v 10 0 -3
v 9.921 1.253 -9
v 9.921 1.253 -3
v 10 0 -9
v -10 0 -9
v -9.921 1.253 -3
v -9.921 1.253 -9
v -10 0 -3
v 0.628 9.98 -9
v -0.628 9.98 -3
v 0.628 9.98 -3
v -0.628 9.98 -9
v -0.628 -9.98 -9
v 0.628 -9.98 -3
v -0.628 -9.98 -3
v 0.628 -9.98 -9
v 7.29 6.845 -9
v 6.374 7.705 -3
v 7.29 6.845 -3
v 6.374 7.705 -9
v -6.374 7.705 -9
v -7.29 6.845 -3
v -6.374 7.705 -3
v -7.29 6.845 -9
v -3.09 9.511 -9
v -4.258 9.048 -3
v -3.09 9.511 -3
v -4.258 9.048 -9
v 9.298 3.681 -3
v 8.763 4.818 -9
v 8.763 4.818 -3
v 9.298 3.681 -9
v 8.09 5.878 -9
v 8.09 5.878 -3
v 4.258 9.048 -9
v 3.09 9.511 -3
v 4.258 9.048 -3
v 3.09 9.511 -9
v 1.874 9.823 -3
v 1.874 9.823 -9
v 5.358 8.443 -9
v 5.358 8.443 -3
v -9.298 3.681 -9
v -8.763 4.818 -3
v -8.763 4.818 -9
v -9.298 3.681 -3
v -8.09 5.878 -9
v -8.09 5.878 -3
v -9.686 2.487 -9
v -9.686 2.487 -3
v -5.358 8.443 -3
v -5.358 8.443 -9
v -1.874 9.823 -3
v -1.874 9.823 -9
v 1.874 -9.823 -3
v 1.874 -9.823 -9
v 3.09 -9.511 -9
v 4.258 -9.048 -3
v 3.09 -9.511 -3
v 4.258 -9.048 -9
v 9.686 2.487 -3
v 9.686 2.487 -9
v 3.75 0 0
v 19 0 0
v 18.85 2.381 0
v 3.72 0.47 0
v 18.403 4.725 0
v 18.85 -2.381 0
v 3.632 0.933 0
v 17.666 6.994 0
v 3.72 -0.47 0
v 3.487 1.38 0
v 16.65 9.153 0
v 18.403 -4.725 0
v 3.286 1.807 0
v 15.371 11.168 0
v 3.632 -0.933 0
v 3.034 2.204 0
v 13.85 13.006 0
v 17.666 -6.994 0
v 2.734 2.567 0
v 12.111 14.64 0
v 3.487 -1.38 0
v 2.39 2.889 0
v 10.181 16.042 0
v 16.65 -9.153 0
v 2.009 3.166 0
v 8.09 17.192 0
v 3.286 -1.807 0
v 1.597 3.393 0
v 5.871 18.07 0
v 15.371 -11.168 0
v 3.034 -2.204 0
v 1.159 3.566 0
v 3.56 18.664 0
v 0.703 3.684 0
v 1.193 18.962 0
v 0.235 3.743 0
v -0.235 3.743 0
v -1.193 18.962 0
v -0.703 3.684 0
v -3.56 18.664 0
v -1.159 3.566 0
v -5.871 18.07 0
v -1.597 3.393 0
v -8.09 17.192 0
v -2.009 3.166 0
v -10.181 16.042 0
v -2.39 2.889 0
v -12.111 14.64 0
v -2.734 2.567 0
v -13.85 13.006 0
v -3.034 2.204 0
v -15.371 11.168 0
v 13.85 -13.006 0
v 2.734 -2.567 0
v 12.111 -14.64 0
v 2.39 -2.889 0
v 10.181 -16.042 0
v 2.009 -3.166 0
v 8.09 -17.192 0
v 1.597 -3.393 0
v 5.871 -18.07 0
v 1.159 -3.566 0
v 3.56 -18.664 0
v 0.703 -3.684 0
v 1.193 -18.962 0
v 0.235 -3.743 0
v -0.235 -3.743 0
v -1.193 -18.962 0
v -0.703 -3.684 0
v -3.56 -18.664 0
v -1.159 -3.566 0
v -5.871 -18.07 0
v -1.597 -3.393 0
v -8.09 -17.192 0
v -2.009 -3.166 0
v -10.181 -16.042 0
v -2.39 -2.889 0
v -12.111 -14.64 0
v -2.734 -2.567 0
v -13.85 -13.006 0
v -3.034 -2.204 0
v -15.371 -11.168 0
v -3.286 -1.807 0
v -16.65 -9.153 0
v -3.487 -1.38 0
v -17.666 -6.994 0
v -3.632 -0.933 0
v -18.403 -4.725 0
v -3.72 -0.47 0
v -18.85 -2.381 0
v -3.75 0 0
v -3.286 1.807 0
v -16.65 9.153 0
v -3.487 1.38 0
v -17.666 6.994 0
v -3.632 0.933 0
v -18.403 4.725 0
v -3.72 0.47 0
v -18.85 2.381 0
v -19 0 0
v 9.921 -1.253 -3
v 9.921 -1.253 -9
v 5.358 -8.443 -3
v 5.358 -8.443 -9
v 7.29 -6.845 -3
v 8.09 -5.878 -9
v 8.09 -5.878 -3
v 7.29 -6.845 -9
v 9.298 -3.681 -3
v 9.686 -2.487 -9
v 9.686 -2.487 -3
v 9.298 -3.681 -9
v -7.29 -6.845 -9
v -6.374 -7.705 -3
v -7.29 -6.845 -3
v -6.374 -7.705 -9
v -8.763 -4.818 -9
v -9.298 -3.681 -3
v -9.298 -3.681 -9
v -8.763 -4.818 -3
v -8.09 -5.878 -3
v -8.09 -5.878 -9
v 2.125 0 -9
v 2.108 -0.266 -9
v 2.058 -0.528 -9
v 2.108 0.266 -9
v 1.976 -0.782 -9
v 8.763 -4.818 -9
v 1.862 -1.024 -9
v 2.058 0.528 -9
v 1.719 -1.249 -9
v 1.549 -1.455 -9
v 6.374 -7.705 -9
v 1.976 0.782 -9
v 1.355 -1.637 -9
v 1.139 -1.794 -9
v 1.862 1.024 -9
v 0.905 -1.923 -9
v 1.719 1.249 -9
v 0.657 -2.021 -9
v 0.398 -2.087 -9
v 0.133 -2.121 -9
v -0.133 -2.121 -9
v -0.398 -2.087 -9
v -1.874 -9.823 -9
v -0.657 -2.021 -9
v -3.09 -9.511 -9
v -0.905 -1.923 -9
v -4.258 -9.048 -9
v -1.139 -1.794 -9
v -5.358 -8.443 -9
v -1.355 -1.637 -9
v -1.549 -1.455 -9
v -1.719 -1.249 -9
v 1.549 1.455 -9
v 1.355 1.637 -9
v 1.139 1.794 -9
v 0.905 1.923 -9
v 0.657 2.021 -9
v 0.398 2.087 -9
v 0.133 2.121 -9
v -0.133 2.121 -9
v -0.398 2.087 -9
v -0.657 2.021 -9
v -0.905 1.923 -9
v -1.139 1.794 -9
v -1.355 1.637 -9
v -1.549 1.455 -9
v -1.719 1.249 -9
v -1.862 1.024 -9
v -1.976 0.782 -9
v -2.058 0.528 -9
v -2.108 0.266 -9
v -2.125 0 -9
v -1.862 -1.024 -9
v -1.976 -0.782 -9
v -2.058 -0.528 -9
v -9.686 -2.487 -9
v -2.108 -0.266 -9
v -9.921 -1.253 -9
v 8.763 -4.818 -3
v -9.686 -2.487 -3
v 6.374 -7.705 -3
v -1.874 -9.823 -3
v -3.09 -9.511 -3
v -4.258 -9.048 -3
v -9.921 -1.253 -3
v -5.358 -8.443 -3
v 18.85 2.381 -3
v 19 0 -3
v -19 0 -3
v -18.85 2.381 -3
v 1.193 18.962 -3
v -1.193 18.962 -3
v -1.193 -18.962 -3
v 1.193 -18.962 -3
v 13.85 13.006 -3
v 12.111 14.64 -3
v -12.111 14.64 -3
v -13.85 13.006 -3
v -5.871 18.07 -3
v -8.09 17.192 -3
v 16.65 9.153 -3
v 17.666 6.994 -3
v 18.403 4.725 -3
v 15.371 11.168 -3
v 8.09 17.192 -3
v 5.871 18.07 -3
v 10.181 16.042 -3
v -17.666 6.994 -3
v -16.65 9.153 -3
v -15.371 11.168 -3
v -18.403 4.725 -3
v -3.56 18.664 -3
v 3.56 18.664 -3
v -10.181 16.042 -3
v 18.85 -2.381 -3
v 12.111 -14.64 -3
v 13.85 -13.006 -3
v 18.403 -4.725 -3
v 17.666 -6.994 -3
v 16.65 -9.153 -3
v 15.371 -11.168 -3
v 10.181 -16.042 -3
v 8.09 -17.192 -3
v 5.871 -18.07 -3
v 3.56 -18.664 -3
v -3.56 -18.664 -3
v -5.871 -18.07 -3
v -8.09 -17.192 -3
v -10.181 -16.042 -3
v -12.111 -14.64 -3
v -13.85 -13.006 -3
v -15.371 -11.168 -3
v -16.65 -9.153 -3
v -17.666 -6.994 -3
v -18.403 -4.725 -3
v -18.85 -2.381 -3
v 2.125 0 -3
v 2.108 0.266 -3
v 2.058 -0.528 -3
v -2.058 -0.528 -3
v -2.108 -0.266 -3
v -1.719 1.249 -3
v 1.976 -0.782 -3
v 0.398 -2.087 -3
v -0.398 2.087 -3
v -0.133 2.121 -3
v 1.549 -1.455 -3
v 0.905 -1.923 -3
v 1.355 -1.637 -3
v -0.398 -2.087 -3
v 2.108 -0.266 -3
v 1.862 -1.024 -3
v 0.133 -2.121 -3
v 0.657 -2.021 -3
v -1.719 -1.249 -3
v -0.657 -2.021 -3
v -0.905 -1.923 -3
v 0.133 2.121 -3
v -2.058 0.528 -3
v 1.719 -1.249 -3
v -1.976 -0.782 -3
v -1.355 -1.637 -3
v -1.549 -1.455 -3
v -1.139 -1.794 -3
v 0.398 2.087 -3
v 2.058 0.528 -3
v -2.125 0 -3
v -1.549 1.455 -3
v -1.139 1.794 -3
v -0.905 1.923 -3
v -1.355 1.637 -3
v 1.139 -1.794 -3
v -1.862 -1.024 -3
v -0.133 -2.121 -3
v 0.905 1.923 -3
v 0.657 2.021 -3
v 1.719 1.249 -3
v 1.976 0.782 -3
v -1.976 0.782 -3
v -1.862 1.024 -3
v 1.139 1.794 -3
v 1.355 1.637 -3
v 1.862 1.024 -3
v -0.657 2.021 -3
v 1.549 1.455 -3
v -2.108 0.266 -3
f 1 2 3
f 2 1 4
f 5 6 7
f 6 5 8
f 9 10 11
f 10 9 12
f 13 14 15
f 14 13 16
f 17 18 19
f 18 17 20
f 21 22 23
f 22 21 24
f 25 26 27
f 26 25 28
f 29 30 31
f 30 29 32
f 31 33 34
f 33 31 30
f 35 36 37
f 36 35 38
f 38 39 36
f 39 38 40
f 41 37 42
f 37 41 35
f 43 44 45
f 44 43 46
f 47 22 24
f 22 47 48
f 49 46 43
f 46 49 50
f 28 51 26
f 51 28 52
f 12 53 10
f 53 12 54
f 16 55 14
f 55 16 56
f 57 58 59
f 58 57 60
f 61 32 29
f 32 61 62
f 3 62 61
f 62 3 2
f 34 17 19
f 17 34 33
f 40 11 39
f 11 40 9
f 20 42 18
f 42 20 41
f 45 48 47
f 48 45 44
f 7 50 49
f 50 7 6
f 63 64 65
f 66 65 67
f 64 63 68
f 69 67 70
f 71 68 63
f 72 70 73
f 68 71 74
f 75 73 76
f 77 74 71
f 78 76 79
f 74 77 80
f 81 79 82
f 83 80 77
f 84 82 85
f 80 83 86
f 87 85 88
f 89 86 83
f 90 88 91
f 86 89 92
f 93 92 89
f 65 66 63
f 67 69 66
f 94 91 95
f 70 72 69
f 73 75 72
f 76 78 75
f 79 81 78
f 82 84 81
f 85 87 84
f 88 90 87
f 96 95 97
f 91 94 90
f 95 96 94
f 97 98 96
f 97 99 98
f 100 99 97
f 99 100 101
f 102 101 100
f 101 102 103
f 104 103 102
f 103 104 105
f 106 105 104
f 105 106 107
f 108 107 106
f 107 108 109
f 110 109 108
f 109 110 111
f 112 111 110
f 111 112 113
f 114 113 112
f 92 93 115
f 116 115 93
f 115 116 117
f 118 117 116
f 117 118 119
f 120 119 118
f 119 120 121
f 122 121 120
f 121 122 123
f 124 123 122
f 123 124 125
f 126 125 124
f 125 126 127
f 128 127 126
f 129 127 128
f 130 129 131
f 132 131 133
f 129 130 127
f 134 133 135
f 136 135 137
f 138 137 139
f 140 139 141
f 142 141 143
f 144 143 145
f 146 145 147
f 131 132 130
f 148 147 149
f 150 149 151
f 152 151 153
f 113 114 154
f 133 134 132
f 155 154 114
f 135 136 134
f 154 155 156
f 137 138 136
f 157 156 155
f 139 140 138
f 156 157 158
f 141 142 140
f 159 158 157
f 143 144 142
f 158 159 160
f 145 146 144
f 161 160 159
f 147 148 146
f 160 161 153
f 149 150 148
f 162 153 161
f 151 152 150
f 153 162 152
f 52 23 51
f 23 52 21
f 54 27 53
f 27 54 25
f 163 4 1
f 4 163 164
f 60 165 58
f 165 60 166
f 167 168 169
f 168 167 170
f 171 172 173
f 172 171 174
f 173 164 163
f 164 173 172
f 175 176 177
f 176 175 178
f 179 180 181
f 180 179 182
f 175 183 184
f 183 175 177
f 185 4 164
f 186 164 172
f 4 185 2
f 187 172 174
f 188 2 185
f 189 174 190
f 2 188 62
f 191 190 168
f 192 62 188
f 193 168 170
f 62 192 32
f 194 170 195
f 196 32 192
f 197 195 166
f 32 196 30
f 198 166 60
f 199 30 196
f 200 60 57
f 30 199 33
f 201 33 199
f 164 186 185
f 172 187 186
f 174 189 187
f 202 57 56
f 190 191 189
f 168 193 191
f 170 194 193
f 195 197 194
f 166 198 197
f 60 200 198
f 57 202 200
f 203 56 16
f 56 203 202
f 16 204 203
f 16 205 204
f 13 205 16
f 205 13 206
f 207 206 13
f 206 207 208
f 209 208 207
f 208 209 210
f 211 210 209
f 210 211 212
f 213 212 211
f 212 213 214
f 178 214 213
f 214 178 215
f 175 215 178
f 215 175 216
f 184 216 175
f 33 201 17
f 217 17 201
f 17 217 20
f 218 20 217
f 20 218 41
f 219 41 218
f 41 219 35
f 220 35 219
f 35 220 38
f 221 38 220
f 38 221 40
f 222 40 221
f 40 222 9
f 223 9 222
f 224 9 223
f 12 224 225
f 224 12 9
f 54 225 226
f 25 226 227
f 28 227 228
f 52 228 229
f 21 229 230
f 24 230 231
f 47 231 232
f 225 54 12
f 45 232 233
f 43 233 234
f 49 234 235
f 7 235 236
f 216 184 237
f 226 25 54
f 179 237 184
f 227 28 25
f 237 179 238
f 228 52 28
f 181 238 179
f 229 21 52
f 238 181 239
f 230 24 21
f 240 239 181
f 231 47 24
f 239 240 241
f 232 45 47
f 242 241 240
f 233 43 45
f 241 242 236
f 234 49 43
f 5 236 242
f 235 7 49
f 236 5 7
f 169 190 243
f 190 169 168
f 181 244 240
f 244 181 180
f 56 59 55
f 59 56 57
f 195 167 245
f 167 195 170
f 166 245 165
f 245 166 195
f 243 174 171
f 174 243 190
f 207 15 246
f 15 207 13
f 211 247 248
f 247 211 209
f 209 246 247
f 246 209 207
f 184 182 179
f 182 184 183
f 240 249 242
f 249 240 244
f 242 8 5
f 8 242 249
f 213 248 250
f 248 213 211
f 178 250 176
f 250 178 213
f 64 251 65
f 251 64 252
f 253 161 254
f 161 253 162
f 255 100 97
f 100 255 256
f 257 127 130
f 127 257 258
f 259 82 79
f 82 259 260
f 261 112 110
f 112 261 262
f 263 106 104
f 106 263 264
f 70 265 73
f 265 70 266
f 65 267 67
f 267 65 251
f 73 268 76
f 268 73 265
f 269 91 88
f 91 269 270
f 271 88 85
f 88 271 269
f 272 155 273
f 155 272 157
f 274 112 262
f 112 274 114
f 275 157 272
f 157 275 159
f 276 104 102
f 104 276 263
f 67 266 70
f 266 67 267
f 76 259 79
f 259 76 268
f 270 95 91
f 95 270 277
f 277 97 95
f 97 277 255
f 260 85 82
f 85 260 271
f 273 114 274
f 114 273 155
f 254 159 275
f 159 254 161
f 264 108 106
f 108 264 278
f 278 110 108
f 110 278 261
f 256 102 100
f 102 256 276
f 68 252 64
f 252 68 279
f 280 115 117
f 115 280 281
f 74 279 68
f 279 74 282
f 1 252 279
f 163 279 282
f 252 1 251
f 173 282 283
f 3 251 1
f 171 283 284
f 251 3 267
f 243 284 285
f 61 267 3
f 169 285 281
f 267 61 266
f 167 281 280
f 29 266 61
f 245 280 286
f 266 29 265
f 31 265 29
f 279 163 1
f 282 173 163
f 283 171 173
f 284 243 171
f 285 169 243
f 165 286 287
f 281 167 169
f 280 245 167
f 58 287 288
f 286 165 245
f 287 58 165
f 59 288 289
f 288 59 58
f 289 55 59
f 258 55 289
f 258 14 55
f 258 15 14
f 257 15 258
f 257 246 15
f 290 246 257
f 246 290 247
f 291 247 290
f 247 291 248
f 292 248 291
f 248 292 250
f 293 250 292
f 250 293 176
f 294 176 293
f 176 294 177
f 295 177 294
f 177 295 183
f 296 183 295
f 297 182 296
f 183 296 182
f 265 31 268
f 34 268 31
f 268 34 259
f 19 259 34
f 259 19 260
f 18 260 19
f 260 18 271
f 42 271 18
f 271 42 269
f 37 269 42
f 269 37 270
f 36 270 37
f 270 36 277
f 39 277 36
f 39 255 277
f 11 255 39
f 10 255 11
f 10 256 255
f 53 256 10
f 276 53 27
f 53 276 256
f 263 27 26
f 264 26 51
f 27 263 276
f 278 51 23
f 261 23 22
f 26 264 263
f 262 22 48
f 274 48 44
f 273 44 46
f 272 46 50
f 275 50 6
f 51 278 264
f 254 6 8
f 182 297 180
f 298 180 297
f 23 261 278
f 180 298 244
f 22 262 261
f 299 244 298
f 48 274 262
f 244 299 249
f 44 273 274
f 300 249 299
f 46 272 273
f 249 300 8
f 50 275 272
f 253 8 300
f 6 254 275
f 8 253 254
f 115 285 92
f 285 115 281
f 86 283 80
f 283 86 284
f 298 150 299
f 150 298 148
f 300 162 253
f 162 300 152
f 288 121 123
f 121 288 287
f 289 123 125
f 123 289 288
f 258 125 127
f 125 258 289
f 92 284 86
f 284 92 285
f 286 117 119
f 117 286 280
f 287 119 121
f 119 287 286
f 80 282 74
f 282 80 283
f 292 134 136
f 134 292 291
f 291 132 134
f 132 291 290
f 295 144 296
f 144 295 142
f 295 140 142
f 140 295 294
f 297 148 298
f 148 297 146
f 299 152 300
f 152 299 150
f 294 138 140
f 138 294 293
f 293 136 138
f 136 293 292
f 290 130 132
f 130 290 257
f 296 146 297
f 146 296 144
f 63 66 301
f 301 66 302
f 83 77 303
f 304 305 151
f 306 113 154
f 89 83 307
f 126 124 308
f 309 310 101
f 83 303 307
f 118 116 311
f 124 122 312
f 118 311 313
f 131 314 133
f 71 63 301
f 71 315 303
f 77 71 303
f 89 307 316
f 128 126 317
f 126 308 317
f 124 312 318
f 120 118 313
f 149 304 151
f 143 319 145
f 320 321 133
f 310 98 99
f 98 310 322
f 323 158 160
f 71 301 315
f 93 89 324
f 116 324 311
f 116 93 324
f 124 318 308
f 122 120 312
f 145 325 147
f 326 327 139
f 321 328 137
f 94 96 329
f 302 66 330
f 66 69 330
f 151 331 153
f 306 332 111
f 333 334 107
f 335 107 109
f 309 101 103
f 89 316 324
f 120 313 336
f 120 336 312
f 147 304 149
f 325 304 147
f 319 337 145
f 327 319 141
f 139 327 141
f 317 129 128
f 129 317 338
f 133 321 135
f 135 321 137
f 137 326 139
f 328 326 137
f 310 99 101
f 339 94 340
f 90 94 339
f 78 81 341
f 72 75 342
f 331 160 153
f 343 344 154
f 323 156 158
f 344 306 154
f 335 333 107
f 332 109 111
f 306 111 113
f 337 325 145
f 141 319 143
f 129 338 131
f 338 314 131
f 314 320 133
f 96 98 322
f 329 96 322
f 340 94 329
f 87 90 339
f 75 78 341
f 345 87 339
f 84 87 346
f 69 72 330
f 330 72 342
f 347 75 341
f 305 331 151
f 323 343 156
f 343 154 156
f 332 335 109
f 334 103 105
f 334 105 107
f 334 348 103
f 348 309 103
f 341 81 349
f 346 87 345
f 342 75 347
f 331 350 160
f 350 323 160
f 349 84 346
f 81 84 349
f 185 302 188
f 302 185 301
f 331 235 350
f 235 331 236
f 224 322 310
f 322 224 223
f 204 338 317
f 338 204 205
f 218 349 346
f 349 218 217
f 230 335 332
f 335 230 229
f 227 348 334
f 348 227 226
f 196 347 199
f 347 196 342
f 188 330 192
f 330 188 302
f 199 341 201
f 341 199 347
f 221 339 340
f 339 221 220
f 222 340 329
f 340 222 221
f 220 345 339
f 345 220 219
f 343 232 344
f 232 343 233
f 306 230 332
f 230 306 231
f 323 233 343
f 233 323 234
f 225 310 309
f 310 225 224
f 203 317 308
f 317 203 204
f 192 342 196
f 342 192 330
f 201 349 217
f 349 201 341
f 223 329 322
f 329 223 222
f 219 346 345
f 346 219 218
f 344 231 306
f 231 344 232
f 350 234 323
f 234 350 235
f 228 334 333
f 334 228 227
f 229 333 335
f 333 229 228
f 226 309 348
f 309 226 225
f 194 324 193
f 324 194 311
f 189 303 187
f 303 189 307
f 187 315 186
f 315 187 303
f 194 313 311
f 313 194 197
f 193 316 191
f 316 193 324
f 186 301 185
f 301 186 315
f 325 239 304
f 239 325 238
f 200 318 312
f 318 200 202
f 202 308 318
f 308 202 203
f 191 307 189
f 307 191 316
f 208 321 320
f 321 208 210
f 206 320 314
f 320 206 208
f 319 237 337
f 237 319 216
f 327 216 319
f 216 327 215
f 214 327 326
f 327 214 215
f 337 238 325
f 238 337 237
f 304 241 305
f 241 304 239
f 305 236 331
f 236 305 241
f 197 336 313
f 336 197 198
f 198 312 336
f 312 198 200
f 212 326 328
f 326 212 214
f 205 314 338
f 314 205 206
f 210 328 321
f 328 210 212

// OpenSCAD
$fn = 50;


difference() {
	union() {
		translate(v = [0, 0, -9.0000000000]) {
			cylinder(h = 9, r = 10.0000000000);
		}
		translate(v = [0, 0, -3.0000000000]) {
			cylinder(h = 3, r = 19.0000000000);
		}
	}
	union() {
		translate(v = [0, 0, 0]) {
			rotate(a = [0, 0, 0]) {
				difference() {
					union() {
						#translate(v = [0, 0, -9.0000000000]) {
							cylinder(h = 9, r = 2.0000000000);
						}
						#translate(v = [0, 0, -3]) {
							cylinder(h = 3, r1 = 2.1250000000, r2 = 3.7500000000);
						}
						#translate(v = [0, 0, -9.0000000000]) {
							cylinder(h = 9, r = 2.1250000000);
						}
						#translate(v = [0, 0, -9.0000000000]) {
							cylinder(h = 9, r = 2.0000000000);
						}
					}
					union();
				}
			}
		}
	}
}
